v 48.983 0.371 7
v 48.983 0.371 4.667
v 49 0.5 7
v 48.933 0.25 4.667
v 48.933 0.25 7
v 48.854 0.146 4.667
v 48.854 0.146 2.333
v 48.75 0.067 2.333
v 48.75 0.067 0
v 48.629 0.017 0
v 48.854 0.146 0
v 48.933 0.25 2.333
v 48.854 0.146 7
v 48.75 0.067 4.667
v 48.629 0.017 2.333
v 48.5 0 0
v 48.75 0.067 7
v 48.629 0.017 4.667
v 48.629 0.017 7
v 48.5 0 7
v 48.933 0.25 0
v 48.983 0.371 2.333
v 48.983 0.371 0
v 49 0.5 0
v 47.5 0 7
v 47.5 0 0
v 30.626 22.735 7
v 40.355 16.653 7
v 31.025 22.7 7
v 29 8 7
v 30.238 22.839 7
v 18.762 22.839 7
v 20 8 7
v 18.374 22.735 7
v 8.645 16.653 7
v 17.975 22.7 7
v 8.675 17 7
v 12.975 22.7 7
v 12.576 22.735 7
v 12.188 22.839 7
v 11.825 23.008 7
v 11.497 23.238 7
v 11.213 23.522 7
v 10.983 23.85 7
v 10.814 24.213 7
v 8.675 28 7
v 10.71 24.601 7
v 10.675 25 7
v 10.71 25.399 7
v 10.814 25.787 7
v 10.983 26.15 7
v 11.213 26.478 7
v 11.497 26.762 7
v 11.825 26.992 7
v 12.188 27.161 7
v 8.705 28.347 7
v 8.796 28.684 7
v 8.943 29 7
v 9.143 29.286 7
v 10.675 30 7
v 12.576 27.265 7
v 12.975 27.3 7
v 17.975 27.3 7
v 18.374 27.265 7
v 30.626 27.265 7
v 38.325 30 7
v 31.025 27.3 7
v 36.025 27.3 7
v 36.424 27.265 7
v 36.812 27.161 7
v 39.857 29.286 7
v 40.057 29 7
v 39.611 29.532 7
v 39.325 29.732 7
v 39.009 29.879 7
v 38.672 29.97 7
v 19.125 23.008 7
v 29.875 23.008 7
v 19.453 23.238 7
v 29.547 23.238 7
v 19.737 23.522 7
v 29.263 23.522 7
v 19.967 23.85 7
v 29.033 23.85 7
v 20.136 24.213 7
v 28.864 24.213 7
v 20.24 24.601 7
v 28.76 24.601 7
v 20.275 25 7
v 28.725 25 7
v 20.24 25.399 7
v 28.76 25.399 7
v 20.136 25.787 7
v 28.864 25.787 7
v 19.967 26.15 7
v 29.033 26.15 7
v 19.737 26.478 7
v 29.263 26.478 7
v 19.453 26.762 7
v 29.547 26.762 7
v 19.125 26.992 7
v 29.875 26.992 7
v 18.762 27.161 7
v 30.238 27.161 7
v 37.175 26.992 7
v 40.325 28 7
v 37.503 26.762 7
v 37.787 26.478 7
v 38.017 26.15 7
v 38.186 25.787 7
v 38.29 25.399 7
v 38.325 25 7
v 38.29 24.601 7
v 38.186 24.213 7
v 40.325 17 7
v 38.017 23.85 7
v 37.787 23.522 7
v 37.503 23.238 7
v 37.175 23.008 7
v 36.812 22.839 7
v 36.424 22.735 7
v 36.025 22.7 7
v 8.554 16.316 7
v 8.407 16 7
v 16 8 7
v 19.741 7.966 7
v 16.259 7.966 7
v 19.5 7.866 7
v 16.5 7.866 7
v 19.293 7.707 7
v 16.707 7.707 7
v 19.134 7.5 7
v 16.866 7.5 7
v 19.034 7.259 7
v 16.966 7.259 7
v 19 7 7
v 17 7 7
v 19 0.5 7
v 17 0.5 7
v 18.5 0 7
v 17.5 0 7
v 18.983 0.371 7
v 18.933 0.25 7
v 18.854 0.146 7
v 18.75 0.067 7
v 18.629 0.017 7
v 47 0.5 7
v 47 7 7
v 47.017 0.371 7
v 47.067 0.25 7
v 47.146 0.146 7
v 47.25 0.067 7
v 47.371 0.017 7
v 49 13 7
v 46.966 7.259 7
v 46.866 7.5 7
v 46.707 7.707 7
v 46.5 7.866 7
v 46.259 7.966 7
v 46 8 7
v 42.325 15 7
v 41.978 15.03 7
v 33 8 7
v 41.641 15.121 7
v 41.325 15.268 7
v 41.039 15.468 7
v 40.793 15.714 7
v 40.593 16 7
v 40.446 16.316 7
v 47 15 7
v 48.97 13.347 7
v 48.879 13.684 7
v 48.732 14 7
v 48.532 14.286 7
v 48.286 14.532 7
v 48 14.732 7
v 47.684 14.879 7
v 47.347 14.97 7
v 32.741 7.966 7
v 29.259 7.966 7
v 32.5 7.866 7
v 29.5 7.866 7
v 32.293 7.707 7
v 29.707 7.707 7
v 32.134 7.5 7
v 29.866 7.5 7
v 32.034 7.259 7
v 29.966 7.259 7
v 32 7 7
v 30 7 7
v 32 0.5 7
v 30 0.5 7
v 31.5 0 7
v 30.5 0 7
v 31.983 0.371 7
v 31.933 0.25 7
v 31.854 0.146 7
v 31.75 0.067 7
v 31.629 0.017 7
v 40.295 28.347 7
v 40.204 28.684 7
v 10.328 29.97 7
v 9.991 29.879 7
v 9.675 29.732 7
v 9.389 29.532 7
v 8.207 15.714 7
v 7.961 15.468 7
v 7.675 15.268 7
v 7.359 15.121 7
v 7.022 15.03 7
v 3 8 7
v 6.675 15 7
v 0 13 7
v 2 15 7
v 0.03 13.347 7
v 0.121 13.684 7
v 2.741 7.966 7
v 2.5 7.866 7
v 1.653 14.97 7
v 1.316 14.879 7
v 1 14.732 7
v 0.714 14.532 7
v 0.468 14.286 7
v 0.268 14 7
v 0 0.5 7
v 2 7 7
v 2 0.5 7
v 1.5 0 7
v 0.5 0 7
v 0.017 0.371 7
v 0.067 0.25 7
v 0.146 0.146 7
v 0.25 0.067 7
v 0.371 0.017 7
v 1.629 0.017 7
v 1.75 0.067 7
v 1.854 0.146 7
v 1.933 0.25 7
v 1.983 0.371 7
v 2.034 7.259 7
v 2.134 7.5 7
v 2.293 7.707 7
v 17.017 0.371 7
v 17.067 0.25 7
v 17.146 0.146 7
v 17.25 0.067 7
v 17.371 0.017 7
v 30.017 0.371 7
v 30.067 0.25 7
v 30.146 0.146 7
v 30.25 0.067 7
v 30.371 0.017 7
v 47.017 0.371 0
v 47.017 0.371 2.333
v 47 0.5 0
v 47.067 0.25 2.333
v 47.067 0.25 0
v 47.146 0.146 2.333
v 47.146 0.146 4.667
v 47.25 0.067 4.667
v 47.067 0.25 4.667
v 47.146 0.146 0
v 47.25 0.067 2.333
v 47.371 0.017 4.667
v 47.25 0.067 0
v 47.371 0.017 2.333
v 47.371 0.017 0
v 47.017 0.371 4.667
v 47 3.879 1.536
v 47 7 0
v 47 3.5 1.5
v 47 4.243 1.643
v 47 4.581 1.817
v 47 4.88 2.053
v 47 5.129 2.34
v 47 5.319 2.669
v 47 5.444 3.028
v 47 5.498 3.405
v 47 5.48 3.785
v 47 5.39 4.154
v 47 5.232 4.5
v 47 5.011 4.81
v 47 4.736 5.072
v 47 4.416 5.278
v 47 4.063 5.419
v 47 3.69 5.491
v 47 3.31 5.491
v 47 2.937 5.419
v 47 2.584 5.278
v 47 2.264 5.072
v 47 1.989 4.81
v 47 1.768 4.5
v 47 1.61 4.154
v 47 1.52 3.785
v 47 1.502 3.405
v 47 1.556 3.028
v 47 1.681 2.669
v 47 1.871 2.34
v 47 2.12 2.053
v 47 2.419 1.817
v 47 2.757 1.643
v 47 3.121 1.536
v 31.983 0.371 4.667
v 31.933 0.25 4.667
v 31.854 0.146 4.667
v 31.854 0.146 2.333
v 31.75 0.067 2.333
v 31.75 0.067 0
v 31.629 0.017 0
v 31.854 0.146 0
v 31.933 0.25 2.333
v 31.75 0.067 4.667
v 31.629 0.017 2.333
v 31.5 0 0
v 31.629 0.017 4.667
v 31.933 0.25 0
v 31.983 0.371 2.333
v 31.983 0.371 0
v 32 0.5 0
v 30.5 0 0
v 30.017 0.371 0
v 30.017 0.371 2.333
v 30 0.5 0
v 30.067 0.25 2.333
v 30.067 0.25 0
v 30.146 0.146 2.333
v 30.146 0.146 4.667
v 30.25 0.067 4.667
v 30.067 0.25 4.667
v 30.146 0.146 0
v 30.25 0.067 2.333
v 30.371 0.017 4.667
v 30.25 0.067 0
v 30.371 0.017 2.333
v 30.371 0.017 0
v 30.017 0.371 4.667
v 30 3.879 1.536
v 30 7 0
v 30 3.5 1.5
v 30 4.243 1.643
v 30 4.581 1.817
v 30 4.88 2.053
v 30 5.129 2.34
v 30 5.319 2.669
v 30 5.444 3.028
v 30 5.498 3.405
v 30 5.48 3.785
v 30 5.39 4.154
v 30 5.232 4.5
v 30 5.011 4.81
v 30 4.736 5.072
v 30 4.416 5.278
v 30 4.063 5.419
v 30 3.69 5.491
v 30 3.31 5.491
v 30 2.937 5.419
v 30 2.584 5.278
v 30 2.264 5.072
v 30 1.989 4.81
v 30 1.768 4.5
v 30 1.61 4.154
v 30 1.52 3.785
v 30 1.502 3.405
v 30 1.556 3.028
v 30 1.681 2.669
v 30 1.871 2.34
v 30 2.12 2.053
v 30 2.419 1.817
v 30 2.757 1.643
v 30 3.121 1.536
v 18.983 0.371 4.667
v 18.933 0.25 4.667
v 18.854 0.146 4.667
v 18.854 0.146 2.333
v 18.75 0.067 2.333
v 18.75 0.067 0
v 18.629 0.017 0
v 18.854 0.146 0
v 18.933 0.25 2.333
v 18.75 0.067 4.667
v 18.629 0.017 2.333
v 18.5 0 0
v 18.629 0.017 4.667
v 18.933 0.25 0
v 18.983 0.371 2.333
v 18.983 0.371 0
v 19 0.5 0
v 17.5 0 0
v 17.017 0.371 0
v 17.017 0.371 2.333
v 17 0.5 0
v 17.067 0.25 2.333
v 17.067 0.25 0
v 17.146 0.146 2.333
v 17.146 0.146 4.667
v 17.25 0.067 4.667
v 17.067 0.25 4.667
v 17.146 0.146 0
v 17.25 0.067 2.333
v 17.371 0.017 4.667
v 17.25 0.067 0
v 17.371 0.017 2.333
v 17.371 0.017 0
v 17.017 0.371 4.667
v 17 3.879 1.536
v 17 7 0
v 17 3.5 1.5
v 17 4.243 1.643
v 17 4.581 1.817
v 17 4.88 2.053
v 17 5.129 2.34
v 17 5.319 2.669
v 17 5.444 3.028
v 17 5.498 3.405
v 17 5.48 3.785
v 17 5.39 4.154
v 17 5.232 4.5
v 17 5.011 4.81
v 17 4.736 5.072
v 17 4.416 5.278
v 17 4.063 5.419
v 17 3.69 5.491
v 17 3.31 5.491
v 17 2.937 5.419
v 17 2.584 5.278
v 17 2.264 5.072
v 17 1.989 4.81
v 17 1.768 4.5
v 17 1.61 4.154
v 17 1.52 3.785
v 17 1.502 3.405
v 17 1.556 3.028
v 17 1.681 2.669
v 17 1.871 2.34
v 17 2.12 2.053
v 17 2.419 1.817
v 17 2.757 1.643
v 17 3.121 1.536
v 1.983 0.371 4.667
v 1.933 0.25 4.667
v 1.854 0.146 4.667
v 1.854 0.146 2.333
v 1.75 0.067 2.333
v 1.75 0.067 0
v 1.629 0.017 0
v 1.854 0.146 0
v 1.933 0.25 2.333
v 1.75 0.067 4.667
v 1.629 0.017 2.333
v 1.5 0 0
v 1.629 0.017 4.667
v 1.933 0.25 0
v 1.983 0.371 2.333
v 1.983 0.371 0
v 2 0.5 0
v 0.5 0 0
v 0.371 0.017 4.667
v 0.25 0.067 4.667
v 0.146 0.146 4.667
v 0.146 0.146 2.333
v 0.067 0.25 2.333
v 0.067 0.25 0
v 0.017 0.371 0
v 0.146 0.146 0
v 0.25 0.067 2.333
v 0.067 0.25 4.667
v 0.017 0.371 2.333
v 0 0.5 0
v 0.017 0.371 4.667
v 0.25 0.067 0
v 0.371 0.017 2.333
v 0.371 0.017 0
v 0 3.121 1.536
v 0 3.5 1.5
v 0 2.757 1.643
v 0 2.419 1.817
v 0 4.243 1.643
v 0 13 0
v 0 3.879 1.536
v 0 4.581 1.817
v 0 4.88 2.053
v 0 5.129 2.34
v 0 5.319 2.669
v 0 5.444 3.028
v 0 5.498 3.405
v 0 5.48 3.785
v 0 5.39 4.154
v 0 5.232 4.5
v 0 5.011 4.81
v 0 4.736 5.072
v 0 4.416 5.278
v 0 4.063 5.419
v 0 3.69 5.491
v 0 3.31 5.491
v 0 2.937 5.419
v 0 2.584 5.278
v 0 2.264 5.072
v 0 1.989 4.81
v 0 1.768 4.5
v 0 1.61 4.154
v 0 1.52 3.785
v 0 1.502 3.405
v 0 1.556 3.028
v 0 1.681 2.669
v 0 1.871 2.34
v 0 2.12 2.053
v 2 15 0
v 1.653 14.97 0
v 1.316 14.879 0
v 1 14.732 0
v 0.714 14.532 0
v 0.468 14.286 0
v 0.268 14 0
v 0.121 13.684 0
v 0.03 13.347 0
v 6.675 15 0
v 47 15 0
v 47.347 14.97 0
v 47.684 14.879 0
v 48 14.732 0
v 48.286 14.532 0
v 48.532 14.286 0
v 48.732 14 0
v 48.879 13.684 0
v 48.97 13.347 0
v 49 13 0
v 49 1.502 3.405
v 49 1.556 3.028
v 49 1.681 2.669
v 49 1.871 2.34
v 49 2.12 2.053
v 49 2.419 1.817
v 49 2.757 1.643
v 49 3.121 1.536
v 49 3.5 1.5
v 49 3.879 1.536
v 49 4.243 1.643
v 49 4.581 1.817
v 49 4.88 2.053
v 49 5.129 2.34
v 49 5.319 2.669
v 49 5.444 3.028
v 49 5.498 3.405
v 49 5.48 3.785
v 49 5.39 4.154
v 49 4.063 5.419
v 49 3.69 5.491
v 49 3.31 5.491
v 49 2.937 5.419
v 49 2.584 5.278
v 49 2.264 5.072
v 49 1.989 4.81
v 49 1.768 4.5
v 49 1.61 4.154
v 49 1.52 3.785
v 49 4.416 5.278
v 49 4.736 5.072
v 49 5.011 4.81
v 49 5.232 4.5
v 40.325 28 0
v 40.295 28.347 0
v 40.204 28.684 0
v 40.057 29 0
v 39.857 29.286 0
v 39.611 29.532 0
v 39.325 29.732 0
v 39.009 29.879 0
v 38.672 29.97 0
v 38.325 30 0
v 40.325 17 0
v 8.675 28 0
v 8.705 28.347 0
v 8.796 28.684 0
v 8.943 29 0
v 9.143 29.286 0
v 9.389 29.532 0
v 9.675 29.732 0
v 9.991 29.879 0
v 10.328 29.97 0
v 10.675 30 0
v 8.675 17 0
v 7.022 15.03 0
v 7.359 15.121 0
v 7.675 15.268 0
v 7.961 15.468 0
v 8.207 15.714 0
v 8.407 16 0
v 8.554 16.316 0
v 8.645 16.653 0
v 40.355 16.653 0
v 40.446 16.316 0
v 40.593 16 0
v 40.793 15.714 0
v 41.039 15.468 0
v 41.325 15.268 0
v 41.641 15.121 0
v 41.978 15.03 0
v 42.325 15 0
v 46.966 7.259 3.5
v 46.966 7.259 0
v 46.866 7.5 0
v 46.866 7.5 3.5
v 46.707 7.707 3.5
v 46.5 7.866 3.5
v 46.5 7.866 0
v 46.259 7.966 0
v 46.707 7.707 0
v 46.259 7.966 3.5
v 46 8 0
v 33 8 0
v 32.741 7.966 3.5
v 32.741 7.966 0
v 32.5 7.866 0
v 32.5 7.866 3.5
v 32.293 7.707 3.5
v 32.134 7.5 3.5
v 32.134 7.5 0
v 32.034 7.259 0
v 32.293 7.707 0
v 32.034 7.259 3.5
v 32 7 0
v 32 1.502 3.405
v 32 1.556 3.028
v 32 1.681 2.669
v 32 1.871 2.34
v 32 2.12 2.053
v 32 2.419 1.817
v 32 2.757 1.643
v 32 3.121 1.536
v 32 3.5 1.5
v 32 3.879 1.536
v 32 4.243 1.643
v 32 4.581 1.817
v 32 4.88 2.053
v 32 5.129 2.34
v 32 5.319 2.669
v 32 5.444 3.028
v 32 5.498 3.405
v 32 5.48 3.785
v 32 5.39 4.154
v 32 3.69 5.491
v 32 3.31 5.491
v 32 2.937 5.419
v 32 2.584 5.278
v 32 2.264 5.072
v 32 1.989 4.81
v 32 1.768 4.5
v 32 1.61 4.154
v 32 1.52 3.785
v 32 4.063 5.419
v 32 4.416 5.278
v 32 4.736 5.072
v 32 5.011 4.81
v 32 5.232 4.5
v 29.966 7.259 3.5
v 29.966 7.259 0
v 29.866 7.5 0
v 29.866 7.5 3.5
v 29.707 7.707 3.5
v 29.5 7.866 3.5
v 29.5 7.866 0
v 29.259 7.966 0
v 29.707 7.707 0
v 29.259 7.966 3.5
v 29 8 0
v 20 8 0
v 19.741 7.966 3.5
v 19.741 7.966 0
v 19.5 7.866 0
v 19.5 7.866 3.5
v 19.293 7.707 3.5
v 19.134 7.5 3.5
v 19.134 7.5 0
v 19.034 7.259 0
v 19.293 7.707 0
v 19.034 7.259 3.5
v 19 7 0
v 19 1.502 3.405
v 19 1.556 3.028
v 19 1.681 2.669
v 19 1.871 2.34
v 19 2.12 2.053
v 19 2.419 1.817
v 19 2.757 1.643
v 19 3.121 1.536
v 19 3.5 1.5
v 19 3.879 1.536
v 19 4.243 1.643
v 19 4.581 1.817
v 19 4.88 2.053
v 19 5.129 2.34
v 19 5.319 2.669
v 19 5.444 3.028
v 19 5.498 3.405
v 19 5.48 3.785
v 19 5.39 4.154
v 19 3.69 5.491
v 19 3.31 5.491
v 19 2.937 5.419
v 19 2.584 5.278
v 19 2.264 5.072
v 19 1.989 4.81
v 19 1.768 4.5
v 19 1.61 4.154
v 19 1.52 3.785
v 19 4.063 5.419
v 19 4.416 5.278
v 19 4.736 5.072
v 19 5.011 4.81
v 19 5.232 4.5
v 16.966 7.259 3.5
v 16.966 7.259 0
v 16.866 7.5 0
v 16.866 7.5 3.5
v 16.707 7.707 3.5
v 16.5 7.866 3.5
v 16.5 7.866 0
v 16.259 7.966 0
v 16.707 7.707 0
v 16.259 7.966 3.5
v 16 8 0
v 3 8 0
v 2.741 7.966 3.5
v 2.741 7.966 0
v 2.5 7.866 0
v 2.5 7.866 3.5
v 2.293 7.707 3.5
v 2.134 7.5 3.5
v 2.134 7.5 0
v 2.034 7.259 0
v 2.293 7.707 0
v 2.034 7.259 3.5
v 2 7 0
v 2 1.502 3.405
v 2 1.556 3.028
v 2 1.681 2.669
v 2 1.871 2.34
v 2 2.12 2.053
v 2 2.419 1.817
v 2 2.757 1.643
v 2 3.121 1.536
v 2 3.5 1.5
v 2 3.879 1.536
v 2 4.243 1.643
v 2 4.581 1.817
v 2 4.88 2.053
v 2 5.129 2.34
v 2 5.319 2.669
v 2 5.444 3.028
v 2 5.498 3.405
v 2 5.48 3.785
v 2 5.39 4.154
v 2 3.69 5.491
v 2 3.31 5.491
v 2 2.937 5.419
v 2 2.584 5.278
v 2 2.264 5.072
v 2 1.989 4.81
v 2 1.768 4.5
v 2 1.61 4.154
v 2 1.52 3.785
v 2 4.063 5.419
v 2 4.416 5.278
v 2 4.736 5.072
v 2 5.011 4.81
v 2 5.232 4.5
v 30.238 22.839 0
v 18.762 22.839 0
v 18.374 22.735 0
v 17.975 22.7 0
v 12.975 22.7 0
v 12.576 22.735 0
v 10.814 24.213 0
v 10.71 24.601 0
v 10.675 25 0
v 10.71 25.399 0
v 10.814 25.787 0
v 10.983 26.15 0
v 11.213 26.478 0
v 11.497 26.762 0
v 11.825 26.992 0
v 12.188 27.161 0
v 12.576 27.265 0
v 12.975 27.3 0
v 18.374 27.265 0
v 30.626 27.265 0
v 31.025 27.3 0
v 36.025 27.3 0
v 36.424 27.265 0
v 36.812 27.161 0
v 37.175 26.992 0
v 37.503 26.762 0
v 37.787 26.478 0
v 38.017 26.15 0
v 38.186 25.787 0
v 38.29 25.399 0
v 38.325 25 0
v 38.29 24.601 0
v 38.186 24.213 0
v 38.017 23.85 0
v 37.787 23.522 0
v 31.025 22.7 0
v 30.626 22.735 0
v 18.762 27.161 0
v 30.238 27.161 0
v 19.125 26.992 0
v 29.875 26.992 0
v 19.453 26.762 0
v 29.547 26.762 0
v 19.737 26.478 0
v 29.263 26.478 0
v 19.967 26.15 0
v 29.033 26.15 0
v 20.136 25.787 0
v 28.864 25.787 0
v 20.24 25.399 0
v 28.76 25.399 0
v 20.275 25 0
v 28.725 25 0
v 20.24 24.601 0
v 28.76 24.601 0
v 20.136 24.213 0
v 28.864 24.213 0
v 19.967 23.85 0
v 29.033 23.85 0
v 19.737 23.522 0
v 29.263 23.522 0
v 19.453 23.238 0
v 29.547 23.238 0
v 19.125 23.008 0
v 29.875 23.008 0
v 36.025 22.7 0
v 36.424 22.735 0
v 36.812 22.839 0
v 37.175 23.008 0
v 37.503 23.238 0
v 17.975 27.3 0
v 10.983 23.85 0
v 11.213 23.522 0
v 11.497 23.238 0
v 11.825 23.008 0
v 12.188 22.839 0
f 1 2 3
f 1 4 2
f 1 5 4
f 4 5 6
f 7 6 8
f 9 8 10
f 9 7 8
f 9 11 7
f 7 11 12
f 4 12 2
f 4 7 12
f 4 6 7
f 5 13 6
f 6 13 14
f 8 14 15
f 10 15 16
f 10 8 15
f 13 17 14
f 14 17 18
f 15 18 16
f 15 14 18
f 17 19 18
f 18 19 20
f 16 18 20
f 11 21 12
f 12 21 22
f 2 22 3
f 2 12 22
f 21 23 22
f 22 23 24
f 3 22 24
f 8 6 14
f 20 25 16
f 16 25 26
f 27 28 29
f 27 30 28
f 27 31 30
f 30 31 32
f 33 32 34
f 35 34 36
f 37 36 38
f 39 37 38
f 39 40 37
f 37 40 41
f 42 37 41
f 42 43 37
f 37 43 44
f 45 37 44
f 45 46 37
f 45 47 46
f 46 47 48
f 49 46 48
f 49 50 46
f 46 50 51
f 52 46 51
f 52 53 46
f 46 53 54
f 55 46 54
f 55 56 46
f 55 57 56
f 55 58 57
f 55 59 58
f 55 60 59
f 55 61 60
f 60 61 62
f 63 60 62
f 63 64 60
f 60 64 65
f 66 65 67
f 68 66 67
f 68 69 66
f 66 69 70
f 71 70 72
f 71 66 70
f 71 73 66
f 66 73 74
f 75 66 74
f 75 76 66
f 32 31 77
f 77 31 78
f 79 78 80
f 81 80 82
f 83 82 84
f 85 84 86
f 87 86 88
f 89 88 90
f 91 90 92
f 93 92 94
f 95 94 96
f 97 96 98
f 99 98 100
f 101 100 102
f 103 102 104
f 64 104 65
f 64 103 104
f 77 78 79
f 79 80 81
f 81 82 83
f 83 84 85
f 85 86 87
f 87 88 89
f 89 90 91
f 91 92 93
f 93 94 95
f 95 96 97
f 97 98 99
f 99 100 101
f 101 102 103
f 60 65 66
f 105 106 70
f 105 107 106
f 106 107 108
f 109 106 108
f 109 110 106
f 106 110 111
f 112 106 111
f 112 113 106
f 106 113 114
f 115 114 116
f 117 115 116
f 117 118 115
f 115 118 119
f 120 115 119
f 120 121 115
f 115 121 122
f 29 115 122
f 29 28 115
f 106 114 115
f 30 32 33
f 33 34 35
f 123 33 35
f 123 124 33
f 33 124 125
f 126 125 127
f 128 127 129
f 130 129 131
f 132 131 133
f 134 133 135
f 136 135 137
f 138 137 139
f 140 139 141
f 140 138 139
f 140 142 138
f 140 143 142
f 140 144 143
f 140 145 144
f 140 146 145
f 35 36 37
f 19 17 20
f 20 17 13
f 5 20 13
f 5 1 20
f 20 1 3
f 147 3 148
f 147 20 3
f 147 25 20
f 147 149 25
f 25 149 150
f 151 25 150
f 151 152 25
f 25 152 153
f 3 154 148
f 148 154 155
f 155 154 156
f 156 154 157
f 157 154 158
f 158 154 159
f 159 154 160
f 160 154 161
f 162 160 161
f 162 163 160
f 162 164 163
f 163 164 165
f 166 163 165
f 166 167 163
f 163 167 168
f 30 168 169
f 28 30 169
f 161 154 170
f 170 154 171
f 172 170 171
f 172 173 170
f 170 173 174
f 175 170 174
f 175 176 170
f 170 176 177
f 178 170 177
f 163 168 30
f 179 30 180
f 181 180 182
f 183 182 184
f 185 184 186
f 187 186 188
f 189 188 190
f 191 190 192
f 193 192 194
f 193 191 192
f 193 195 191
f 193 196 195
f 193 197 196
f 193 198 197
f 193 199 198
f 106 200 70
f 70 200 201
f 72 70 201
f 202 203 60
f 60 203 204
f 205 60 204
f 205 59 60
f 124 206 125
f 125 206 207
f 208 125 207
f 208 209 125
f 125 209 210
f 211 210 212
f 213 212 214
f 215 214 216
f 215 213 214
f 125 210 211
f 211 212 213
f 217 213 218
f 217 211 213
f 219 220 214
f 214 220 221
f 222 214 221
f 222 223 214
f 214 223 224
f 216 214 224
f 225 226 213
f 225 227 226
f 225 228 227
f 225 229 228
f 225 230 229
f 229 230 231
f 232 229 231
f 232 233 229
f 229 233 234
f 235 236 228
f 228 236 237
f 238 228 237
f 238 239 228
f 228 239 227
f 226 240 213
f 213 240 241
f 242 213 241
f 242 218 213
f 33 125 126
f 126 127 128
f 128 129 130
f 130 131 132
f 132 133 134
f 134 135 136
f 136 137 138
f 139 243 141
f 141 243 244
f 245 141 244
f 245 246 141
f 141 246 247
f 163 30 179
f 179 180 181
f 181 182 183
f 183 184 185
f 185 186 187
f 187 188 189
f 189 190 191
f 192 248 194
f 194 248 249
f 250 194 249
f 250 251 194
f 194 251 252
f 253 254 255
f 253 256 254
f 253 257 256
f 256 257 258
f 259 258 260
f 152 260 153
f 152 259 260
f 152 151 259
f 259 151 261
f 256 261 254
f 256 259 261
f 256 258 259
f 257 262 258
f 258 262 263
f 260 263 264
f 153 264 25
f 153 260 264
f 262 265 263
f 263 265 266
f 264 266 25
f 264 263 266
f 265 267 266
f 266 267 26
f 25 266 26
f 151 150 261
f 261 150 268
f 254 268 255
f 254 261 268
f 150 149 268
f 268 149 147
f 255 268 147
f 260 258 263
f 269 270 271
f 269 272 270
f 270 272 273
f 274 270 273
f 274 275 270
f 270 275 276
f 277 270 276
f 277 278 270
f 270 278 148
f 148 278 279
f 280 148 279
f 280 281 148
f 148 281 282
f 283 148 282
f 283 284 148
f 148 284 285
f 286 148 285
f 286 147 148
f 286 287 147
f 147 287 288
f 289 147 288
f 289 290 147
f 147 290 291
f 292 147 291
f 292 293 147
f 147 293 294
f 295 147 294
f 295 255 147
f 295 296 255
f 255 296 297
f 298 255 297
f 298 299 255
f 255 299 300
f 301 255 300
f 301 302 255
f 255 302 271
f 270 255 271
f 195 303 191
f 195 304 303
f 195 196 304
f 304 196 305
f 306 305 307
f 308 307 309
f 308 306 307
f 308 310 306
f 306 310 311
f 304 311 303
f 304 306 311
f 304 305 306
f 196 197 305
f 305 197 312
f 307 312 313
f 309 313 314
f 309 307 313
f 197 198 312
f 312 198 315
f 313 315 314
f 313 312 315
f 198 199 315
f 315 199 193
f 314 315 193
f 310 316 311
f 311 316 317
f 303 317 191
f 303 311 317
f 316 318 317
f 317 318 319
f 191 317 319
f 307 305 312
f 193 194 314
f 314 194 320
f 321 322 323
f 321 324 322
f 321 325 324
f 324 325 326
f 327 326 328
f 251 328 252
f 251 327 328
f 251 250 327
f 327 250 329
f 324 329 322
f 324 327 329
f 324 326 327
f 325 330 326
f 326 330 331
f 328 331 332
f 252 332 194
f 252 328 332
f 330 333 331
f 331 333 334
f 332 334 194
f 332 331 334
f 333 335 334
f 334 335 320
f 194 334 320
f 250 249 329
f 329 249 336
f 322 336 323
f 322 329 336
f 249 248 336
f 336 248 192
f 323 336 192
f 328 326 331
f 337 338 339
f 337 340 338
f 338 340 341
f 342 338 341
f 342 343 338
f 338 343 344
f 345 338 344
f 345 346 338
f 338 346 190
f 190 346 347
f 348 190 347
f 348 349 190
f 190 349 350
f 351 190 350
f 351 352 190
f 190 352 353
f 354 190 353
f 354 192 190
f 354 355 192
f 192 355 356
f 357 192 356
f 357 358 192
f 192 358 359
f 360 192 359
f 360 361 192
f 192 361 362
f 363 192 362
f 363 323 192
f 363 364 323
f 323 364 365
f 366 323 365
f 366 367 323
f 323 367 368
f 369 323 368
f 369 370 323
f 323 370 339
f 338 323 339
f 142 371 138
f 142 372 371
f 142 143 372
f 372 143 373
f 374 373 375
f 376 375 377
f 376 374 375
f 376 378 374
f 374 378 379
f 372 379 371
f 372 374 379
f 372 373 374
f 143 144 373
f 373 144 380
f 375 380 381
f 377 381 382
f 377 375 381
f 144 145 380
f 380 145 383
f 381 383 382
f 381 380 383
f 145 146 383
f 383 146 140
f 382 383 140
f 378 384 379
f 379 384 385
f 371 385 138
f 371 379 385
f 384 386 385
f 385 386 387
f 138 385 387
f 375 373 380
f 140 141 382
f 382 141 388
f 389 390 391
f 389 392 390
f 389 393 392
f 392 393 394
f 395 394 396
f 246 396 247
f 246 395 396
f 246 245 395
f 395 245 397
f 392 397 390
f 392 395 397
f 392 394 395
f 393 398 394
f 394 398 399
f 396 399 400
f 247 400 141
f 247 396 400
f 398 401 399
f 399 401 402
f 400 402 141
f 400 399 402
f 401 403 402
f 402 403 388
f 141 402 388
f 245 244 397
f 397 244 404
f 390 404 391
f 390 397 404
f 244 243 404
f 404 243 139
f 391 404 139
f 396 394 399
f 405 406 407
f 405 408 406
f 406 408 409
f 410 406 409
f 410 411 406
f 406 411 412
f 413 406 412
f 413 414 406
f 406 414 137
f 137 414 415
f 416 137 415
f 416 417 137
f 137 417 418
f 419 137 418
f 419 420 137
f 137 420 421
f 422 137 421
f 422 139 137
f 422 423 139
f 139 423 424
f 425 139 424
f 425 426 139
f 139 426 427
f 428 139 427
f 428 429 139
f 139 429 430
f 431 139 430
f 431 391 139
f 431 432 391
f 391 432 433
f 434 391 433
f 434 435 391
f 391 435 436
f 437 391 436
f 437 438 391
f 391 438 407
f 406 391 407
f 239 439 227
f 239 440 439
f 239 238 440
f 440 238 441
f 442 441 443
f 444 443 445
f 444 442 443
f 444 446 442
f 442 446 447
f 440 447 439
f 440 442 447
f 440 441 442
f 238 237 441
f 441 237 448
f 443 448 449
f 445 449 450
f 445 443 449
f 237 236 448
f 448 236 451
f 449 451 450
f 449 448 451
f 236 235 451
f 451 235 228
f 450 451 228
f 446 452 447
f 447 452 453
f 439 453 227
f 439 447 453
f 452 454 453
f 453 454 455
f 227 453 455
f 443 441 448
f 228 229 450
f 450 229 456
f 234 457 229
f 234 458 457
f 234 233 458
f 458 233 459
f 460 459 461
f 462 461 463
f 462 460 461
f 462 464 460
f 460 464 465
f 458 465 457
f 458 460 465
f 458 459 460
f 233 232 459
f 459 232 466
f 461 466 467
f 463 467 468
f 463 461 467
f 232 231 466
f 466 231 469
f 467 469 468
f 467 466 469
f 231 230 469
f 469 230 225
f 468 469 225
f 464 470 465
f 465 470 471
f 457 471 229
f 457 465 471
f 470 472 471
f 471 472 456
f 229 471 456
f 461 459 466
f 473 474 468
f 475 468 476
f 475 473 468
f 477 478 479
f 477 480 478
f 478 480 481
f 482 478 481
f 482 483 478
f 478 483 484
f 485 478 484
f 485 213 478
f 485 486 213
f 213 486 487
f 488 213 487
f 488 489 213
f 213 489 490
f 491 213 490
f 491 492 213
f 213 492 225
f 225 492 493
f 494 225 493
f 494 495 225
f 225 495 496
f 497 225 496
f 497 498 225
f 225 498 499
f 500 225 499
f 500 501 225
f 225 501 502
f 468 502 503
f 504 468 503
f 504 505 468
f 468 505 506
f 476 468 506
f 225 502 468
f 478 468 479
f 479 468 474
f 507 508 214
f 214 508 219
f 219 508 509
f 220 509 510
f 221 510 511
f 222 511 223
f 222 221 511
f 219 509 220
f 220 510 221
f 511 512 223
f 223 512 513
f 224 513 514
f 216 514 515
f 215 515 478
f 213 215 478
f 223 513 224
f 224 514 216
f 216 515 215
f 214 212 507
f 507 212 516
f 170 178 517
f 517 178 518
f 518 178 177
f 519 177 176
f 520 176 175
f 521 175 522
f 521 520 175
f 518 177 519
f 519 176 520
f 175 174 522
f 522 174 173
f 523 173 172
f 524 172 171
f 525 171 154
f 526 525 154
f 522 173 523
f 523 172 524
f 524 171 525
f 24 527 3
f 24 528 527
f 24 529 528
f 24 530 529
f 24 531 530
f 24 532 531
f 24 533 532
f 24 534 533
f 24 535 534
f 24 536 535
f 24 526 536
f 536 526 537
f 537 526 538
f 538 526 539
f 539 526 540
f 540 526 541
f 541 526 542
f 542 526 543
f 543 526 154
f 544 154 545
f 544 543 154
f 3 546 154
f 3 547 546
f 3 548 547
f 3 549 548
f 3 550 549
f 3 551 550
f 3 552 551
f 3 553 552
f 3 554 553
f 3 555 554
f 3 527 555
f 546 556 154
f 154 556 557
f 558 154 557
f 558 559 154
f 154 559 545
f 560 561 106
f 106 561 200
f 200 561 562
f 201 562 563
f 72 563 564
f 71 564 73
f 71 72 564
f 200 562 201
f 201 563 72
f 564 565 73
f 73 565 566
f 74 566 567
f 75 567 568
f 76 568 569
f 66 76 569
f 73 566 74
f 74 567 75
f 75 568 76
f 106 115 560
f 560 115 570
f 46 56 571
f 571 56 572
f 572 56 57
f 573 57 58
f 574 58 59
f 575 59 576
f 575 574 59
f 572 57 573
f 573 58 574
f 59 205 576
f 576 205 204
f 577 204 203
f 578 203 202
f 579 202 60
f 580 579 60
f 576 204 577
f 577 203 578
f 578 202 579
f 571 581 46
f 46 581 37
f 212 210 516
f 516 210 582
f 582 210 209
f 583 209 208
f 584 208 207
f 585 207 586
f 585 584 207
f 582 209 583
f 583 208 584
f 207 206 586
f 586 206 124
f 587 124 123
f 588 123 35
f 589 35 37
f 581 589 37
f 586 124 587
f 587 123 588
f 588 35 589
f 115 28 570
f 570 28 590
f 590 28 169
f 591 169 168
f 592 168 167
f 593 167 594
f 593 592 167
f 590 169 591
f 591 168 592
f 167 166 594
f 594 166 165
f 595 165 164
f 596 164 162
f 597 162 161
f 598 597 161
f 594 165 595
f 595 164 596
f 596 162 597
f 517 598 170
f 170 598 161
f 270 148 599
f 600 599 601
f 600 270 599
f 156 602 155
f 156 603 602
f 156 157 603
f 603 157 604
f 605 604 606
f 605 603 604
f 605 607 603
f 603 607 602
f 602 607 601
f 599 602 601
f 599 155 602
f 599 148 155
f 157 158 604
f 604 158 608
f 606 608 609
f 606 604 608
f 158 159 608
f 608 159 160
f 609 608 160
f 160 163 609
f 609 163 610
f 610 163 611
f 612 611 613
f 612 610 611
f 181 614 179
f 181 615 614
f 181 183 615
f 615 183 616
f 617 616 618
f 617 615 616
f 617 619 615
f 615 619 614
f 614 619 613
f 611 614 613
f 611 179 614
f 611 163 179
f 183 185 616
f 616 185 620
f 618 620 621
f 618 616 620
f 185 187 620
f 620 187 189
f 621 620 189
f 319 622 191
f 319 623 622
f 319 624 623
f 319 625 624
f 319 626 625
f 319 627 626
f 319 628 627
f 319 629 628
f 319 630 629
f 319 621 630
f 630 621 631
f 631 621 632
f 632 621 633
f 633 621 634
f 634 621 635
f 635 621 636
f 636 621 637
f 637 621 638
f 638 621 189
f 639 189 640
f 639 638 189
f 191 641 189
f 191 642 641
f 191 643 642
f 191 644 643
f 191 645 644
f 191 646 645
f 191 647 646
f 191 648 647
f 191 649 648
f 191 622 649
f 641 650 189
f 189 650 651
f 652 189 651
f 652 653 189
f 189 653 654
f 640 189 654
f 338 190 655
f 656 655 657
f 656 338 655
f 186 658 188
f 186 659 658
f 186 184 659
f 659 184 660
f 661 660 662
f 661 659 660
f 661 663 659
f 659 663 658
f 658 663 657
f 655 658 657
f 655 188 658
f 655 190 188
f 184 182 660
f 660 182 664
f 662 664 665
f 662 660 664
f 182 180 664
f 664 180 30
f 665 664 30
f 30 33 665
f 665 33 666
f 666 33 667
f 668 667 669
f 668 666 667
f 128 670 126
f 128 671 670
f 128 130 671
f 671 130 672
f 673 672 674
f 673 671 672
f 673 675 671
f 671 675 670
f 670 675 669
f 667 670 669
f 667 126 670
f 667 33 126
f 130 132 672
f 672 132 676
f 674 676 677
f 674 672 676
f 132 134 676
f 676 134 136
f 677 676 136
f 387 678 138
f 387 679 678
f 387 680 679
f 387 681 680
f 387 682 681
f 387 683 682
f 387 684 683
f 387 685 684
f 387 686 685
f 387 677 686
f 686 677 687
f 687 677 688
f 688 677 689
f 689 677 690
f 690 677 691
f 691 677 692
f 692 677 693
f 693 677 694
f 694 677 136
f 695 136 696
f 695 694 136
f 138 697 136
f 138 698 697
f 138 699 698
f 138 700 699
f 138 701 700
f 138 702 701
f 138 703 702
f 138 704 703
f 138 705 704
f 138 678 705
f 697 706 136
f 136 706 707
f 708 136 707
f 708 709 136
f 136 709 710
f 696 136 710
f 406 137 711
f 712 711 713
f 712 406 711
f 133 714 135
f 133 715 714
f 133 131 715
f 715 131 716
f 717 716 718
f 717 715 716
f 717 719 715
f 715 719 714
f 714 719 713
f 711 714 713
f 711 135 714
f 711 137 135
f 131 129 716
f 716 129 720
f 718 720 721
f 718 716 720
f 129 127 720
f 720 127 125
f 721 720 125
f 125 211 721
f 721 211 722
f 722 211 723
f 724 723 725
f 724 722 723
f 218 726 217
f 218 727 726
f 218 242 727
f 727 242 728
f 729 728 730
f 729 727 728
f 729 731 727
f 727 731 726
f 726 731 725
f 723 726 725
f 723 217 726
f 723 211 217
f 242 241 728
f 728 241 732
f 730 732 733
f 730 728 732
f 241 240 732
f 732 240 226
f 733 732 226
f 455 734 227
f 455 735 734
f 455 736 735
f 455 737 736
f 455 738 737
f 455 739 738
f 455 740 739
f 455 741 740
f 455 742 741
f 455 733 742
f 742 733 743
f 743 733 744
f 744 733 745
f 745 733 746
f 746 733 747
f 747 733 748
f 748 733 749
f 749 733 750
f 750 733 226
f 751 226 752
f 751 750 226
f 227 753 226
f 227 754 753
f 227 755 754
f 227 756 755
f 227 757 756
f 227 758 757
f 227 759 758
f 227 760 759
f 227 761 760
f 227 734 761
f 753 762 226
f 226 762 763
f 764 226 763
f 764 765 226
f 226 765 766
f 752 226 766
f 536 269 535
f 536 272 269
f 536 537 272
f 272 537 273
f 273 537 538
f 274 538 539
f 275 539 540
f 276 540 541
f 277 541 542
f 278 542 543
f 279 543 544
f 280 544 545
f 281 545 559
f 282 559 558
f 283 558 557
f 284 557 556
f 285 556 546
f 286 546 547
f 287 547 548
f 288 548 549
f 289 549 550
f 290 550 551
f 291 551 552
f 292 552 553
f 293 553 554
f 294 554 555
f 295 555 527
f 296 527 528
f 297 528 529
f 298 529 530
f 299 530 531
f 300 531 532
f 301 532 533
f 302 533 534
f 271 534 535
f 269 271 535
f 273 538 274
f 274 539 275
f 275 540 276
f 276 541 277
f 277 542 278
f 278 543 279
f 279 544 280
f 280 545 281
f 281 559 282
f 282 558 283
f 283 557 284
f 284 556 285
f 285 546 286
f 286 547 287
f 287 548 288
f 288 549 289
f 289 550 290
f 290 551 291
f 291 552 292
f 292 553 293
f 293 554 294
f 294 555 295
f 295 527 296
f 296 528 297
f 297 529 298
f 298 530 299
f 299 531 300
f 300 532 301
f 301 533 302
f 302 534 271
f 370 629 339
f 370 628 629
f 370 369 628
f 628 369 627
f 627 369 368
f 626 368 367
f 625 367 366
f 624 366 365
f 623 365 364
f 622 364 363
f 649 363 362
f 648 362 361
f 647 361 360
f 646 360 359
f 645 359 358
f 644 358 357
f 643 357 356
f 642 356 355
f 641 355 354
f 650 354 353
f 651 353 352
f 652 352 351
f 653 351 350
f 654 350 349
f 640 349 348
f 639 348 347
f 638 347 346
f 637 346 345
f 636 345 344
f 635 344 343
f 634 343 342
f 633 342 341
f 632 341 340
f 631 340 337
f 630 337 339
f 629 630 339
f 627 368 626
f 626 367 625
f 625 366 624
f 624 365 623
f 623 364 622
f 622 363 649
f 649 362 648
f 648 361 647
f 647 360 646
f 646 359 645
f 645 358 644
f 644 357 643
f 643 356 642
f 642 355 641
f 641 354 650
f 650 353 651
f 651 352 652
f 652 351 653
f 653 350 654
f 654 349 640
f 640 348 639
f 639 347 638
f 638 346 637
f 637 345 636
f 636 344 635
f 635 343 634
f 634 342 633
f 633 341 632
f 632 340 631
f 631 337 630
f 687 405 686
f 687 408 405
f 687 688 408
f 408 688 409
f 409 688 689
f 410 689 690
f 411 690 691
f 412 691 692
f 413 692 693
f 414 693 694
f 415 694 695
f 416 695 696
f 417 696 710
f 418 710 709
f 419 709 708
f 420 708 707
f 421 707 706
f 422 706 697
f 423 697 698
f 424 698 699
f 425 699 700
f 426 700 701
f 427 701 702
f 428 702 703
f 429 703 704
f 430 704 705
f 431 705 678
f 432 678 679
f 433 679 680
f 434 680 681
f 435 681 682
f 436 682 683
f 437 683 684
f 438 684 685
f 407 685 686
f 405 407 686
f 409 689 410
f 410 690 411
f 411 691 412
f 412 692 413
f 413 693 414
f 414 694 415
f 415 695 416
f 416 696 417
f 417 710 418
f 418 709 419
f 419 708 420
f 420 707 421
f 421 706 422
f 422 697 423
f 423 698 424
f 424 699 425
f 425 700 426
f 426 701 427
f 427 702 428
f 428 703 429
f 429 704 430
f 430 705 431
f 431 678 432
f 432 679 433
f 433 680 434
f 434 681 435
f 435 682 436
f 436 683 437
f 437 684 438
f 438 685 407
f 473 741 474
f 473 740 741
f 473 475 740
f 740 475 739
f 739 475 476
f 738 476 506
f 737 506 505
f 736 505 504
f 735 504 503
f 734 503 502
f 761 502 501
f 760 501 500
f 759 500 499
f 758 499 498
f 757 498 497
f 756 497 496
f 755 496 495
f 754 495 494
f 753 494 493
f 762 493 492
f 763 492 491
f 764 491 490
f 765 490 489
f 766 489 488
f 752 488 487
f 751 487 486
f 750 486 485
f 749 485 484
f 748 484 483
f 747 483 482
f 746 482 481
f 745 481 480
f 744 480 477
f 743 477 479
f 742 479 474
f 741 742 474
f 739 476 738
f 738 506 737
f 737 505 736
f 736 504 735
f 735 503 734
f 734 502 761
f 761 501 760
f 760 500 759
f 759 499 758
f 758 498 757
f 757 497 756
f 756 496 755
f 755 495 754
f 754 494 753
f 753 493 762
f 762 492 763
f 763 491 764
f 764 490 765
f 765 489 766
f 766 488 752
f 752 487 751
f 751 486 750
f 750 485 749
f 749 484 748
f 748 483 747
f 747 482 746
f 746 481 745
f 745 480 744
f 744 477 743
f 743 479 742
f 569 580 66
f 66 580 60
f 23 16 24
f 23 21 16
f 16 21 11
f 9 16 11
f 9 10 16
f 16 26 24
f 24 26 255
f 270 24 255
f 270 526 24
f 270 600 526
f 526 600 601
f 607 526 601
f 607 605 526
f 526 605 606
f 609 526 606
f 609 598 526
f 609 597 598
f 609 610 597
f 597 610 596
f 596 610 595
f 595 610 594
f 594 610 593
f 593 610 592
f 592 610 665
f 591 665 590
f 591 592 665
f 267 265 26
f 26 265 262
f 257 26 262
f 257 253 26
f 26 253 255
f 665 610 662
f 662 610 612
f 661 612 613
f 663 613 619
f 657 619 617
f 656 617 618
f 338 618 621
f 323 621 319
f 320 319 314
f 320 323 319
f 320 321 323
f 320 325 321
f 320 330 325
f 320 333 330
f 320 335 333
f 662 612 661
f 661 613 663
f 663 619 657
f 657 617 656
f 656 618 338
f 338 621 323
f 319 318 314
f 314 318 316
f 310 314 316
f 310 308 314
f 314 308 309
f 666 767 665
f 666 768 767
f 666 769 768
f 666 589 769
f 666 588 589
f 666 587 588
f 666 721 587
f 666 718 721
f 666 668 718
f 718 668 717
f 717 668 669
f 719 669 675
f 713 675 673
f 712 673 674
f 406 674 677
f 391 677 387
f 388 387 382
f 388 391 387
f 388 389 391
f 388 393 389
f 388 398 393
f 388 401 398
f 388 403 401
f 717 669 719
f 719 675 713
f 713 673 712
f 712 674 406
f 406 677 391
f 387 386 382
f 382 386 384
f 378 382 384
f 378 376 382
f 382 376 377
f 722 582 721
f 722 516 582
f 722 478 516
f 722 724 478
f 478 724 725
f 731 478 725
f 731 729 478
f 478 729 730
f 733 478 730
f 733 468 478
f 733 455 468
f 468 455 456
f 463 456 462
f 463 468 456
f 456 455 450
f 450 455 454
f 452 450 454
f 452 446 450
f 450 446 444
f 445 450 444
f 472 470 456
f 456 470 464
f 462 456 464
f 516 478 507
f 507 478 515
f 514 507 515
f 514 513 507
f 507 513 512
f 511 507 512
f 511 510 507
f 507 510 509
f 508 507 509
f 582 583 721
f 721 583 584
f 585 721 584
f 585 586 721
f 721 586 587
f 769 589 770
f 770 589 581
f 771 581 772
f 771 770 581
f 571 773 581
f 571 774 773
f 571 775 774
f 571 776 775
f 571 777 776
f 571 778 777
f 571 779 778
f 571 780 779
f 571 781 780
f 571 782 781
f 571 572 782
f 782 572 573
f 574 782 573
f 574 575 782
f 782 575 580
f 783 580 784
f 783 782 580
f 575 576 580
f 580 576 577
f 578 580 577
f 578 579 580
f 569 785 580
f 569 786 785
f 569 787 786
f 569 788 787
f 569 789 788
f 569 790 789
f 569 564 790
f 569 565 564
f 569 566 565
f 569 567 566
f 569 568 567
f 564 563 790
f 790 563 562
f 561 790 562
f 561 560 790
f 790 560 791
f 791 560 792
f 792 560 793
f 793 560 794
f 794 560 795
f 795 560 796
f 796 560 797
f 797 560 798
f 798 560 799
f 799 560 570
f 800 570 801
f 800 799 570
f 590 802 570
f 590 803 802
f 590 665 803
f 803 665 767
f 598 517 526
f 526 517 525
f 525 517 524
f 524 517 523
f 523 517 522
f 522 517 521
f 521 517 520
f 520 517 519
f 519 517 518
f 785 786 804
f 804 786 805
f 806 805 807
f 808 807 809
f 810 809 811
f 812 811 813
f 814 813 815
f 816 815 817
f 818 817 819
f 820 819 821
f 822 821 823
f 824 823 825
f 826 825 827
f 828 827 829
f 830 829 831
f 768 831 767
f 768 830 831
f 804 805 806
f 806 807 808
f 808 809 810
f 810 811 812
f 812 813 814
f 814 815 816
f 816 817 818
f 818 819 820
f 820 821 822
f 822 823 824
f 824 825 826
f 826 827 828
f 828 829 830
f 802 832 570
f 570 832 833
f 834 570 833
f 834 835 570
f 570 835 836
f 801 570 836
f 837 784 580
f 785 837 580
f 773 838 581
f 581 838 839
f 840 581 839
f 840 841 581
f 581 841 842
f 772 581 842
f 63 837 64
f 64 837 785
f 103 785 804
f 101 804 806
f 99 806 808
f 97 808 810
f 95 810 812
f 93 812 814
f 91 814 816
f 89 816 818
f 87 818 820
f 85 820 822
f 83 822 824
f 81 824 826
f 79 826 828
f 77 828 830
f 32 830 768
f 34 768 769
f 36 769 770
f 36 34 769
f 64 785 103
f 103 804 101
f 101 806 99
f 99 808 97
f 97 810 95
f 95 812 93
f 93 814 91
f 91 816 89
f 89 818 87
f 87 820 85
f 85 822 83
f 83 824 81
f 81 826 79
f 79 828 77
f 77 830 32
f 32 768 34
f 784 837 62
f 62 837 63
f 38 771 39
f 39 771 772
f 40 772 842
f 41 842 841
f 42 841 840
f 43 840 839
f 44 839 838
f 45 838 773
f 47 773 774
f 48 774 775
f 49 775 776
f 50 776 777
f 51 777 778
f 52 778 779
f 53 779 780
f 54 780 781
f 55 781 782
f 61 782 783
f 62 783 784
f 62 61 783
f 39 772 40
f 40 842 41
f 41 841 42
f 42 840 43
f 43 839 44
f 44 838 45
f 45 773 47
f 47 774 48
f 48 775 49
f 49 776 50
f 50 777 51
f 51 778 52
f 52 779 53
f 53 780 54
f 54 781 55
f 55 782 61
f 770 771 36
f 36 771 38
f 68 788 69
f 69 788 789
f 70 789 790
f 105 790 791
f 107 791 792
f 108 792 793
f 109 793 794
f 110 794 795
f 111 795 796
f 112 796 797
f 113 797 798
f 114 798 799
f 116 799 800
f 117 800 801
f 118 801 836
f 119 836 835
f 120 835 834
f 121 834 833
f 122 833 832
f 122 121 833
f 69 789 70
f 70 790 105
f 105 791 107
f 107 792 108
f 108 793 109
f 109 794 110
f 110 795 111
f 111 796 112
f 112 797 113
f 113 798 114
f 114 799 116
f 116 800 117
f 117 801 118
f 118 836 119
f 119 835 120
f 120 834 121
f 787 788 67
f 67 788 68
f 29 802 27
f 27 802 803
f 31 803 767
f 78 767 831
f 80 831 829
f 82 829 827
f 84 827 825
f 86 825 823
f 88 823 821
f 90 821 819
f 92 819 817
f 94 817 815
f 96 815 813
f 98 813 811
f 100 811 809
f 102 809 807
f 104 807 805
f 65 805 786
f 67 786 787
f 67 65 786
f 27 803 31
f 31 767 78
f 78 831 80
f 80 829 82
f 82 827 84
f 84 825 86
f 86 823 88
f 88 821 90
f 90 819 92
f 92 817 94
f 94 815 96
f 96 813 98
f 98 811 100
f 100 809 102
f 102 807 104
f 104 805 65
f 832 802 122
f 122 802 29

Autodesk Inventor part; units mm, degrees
ref_plane "YZ Plane" through (0, 0, 0) normal (1, 0, 0) x (0, 1, 0)
ref_plane "XZ Plane" through (0, 0, 0) normal (0, 1, 0) x (-1, 0, 0)
ref_plane "XY Plane" through (0, 0, 0) normal (0, 0, 1) x (1, 0, 0)
sketch "Sketch1" plane through (0, 0, 0) normal (0, 0, 1) x (1, 0, 0)
  line L0 (0, 0) -> (49, 0)
  line L1 (49, 0) -> (49, 30)
  line L2 (49, 30) -> (0, 30)
  line L3 (0, 30) -> (0, 0)
  dimension "d0" = 30
  dimension "d1" = 49
extrude "Extrusion1" add sketch "Sketch1" along normal blind 7
sketch "Sketch2" plane through (0, 0, 7) normal (0, 0, 1) x (1, 0, 0)
  arc A0 (12.975, 27.3) -> (12.975, 22.7) centre (12.975, 25) ccw
  arc A1 (17.975, 22.7) -> (17.975, 27.3) centre (17.975, 25) ccw
  arc A2 (31.025, 27.3) -> (31.025, 22.7) centre (31.025, 25) ccw
  arc A3 (36.025, 22.7) -> (36.025, 27.3) centre (36.025, 25) ccw
  line L0 (12.975, 27.3) -> (17.975, 27.3)
  line L1 (12.975, 22.7) -> (17.975, 22.7)
  line L2 (31.025, 27.3) -> (36.025, 27.3)
  line L3 (31.025, 22.7) -> (36.025, 22.7)
  line L4 (49, 30) -> (0, 30) projected
  line L5 (0, 30) -> (0, 0) projected
  dimension "d4" = 4.6
  dimension "d5" = 4.6
  dimension "d6" = 4.6
  dimension "d8" = 5
  dimension "d9" = 5
  dimension "d10" = 13.05
  dimension "d11" = 5
  dimension "d12" = 12.975
  dimension "d13" = 49
  dimension "d17" = 2.3
extrude "Extrusion2" cut sketch "Sketch2" against normal up to next
sketch "Sketch3" plane through (0, 0, 7) normal (0, 0, 1) x (1, 0, 0)
  arc A0 (12.975, 27.3) -> (12.975, 22.7) centre (12.975, 25) ccw projected
  line L0 (12.975, 27.3) -> (17.975, 27.3) projected
  arc A1 (17.975, 22.7) -> (17.975, 27.3) centre (17.975, 25) ccw projected
  line L1 (17.975, 22.7) -> (12.975, 22.7) projected
  arc A2 (31.025, 27.3) -> (31.025, 22.7) centre (31.025, 25) ccw projected
  line L2 (31.025, 27.3) -> (36.025, 27.3) projected
  arc A3 (36.025, 22.7) -> (36.025, 27.3) centre (36.025, 25) ccw projected
  line L3 (36.025, 22.7) -> (31.025, 22.7) projected
  line L4 (0, 0) -> (49, 0) projected
  line L5 (49, 0) -> (49, 30) projected
  line L6 (49, 30) -> (0, 30) projected
  line L7 (0, 30) -> (0, 0) projected
  line L8 (2, 8) -> (17, 8)
  line L9 (17, 8) -> (17, 0)
  line L10 (17, 0) -> (2, 0)
  line L11 (2, 0) -> (2, 8)
  line L12 (32, 8) -> (47, 8)
  line L13 (47, 8) -> (47, 0)
  line L14 (47, 0) -> (32, 0)
  line L15 (32, 0) -> (32, 8)
  line L16 (0, 0) -> (49, 0) projected
  line L17 (19, 0) -> (30, 0)
  line L18 (30, 0) -> (30, 8)
  line L19 (30, 8) -> (19, 8)
  line L20 (19, 8) -> (19, 0)
  dimension "d18" = 8
  dimension "d19" = 15
  dimension "d20" = 15
  dimension "d21" = 15
  dimension "d22" = 2
  dimension "d23" = 49
  dimension "d35" = 2
  dimension "d36" = 2
sketch "Sketch4" plane through (0, 0, 7) normal (0, 0, 1) x (1, 0, 0)
  arc A0 (12.975, 27.3) -> (12.975, 22.7) centre (12.975, 25) ccw projected
  line L0 (12.975, 27.3) -> (17.975, 27.3) projected
  arc A1 (17.975, 22.7) -> (17.975, 27.3) centre (17.975, 25) ccw projected
  line L1 (17.975, 22.7) -> (12.975, 22.7) projected
  arc A2 (31.025, 27.3) -> (31.025, 22.7) centre (31.025, 25) ccw projected
  line L2 (31.025, 27.3) -> (36.025, 27.3) projected
  arc A3 (36.025, 22.7) -> (36.025, 27.3) centre (36.025, 25) ccw projected
  line L3 (36.025, 22.7) -> (31.025, 22.7) projected
  line L4 (0, 0) -> (49, 0) projected
  line L5 (49, 0) -> (49, 30) projected
  line L6 (49, 30) -> (0, 30) projected
  line L7 (0, 30) -> (0, 0) projected
  line L8 (0, 30) -> (8.675, 30)
  line L9 (8.675, 30) -> (8.675, 15)
  line L10 (8.675, 15) -> (0, 15)
  line L11 (0, 15) -> (0, 30)
  line L12 (49, 30) -> (40.325, 30)
  line L13 (40.325, 30) -> (40.325, 15)
  line L14 (40.325, 15) -> (49, 15)
  line L15 (49, 15) -> (49, 30)
  dimension "d26" = 8.675
  dimension "d27" = 8.675
  dimension "d28" = 30
  dimension "d29" = 15
  dimension "d31" = 2.3
  dimension "d32" = 12.975
extrude "Extrusion3" cut sketch "Sketch3" against normal up to next contours L11 L8 L9 L4 | L20 L19 L18 L4 | L4 L15 L12 L13
extrude "Extrusion4" cut sketch "Sketch4" against normal up to next contours L7 L6 L9 L10 | L14 L13 L6 L5
sketch "Sketch5" plane through (49, 0, 7) normal (1, 0, 0) x (0, 0, -1)
  circle A0 centre (3.5, 3.5) radius 2
  line L0 (0, 0) -> (0, 15) projected
  line L1 (7, 0) -> (0, 0) projected
  dimension "d37" = 4
  dimension "d38" = 3.5
  dimension "d39" = 3.5
  dimension "d40" = 7
extrude "Extrusion5" cut sketch "Sketch5" against normal through all
fillet "Fillet1" radius 1 6 edges at (2, 8, 3.5) (17, 8, 3.5) (19, 8, 3.5) (30, 8, 3.5) (32, 8, 3.5) (47, 8, 3.5)
fillet "Fillet2" radius 2 6 edges at (40.325, 15, 3.5) (8.675, 15, 3.5) (8.675, 30, 3.5) (40.325, 30, 3.5) (49, 15, 3.5) (0, 15, 3.5)
fillet "Fillet3" radius 0.5 8 edges at (0, 0, 3.5) (2, 0, 3.5) (17, 0, 3.5) (19, 0, 3.5) (30, 0, 3.5) (32, 0, 3.5) (47, 0, 3.5) (49, 0, 3.5)
equation "\"d5\" = d4"
equation "\"d6\" = d4"
equation "\"d12\" = -0.5 * d8 - 0.5 * d9 + 0.5 * d13 - 0.5 * d10"
equation "\"d17\" = 0.5 * d6"
equation "\"d22\" = -0.5 * d20 - 0.5 * d19 + 0.5 * d23 - 0.5 * d21"
equation "\"d35\" = d22"
equation "\"d36\" = d35"
equation "\"d26\" = d27"
equation "\"d38\" = 0.5 * d40"
equation "\"d39\" = d38"
properties part number "tubing_connection_holder"
